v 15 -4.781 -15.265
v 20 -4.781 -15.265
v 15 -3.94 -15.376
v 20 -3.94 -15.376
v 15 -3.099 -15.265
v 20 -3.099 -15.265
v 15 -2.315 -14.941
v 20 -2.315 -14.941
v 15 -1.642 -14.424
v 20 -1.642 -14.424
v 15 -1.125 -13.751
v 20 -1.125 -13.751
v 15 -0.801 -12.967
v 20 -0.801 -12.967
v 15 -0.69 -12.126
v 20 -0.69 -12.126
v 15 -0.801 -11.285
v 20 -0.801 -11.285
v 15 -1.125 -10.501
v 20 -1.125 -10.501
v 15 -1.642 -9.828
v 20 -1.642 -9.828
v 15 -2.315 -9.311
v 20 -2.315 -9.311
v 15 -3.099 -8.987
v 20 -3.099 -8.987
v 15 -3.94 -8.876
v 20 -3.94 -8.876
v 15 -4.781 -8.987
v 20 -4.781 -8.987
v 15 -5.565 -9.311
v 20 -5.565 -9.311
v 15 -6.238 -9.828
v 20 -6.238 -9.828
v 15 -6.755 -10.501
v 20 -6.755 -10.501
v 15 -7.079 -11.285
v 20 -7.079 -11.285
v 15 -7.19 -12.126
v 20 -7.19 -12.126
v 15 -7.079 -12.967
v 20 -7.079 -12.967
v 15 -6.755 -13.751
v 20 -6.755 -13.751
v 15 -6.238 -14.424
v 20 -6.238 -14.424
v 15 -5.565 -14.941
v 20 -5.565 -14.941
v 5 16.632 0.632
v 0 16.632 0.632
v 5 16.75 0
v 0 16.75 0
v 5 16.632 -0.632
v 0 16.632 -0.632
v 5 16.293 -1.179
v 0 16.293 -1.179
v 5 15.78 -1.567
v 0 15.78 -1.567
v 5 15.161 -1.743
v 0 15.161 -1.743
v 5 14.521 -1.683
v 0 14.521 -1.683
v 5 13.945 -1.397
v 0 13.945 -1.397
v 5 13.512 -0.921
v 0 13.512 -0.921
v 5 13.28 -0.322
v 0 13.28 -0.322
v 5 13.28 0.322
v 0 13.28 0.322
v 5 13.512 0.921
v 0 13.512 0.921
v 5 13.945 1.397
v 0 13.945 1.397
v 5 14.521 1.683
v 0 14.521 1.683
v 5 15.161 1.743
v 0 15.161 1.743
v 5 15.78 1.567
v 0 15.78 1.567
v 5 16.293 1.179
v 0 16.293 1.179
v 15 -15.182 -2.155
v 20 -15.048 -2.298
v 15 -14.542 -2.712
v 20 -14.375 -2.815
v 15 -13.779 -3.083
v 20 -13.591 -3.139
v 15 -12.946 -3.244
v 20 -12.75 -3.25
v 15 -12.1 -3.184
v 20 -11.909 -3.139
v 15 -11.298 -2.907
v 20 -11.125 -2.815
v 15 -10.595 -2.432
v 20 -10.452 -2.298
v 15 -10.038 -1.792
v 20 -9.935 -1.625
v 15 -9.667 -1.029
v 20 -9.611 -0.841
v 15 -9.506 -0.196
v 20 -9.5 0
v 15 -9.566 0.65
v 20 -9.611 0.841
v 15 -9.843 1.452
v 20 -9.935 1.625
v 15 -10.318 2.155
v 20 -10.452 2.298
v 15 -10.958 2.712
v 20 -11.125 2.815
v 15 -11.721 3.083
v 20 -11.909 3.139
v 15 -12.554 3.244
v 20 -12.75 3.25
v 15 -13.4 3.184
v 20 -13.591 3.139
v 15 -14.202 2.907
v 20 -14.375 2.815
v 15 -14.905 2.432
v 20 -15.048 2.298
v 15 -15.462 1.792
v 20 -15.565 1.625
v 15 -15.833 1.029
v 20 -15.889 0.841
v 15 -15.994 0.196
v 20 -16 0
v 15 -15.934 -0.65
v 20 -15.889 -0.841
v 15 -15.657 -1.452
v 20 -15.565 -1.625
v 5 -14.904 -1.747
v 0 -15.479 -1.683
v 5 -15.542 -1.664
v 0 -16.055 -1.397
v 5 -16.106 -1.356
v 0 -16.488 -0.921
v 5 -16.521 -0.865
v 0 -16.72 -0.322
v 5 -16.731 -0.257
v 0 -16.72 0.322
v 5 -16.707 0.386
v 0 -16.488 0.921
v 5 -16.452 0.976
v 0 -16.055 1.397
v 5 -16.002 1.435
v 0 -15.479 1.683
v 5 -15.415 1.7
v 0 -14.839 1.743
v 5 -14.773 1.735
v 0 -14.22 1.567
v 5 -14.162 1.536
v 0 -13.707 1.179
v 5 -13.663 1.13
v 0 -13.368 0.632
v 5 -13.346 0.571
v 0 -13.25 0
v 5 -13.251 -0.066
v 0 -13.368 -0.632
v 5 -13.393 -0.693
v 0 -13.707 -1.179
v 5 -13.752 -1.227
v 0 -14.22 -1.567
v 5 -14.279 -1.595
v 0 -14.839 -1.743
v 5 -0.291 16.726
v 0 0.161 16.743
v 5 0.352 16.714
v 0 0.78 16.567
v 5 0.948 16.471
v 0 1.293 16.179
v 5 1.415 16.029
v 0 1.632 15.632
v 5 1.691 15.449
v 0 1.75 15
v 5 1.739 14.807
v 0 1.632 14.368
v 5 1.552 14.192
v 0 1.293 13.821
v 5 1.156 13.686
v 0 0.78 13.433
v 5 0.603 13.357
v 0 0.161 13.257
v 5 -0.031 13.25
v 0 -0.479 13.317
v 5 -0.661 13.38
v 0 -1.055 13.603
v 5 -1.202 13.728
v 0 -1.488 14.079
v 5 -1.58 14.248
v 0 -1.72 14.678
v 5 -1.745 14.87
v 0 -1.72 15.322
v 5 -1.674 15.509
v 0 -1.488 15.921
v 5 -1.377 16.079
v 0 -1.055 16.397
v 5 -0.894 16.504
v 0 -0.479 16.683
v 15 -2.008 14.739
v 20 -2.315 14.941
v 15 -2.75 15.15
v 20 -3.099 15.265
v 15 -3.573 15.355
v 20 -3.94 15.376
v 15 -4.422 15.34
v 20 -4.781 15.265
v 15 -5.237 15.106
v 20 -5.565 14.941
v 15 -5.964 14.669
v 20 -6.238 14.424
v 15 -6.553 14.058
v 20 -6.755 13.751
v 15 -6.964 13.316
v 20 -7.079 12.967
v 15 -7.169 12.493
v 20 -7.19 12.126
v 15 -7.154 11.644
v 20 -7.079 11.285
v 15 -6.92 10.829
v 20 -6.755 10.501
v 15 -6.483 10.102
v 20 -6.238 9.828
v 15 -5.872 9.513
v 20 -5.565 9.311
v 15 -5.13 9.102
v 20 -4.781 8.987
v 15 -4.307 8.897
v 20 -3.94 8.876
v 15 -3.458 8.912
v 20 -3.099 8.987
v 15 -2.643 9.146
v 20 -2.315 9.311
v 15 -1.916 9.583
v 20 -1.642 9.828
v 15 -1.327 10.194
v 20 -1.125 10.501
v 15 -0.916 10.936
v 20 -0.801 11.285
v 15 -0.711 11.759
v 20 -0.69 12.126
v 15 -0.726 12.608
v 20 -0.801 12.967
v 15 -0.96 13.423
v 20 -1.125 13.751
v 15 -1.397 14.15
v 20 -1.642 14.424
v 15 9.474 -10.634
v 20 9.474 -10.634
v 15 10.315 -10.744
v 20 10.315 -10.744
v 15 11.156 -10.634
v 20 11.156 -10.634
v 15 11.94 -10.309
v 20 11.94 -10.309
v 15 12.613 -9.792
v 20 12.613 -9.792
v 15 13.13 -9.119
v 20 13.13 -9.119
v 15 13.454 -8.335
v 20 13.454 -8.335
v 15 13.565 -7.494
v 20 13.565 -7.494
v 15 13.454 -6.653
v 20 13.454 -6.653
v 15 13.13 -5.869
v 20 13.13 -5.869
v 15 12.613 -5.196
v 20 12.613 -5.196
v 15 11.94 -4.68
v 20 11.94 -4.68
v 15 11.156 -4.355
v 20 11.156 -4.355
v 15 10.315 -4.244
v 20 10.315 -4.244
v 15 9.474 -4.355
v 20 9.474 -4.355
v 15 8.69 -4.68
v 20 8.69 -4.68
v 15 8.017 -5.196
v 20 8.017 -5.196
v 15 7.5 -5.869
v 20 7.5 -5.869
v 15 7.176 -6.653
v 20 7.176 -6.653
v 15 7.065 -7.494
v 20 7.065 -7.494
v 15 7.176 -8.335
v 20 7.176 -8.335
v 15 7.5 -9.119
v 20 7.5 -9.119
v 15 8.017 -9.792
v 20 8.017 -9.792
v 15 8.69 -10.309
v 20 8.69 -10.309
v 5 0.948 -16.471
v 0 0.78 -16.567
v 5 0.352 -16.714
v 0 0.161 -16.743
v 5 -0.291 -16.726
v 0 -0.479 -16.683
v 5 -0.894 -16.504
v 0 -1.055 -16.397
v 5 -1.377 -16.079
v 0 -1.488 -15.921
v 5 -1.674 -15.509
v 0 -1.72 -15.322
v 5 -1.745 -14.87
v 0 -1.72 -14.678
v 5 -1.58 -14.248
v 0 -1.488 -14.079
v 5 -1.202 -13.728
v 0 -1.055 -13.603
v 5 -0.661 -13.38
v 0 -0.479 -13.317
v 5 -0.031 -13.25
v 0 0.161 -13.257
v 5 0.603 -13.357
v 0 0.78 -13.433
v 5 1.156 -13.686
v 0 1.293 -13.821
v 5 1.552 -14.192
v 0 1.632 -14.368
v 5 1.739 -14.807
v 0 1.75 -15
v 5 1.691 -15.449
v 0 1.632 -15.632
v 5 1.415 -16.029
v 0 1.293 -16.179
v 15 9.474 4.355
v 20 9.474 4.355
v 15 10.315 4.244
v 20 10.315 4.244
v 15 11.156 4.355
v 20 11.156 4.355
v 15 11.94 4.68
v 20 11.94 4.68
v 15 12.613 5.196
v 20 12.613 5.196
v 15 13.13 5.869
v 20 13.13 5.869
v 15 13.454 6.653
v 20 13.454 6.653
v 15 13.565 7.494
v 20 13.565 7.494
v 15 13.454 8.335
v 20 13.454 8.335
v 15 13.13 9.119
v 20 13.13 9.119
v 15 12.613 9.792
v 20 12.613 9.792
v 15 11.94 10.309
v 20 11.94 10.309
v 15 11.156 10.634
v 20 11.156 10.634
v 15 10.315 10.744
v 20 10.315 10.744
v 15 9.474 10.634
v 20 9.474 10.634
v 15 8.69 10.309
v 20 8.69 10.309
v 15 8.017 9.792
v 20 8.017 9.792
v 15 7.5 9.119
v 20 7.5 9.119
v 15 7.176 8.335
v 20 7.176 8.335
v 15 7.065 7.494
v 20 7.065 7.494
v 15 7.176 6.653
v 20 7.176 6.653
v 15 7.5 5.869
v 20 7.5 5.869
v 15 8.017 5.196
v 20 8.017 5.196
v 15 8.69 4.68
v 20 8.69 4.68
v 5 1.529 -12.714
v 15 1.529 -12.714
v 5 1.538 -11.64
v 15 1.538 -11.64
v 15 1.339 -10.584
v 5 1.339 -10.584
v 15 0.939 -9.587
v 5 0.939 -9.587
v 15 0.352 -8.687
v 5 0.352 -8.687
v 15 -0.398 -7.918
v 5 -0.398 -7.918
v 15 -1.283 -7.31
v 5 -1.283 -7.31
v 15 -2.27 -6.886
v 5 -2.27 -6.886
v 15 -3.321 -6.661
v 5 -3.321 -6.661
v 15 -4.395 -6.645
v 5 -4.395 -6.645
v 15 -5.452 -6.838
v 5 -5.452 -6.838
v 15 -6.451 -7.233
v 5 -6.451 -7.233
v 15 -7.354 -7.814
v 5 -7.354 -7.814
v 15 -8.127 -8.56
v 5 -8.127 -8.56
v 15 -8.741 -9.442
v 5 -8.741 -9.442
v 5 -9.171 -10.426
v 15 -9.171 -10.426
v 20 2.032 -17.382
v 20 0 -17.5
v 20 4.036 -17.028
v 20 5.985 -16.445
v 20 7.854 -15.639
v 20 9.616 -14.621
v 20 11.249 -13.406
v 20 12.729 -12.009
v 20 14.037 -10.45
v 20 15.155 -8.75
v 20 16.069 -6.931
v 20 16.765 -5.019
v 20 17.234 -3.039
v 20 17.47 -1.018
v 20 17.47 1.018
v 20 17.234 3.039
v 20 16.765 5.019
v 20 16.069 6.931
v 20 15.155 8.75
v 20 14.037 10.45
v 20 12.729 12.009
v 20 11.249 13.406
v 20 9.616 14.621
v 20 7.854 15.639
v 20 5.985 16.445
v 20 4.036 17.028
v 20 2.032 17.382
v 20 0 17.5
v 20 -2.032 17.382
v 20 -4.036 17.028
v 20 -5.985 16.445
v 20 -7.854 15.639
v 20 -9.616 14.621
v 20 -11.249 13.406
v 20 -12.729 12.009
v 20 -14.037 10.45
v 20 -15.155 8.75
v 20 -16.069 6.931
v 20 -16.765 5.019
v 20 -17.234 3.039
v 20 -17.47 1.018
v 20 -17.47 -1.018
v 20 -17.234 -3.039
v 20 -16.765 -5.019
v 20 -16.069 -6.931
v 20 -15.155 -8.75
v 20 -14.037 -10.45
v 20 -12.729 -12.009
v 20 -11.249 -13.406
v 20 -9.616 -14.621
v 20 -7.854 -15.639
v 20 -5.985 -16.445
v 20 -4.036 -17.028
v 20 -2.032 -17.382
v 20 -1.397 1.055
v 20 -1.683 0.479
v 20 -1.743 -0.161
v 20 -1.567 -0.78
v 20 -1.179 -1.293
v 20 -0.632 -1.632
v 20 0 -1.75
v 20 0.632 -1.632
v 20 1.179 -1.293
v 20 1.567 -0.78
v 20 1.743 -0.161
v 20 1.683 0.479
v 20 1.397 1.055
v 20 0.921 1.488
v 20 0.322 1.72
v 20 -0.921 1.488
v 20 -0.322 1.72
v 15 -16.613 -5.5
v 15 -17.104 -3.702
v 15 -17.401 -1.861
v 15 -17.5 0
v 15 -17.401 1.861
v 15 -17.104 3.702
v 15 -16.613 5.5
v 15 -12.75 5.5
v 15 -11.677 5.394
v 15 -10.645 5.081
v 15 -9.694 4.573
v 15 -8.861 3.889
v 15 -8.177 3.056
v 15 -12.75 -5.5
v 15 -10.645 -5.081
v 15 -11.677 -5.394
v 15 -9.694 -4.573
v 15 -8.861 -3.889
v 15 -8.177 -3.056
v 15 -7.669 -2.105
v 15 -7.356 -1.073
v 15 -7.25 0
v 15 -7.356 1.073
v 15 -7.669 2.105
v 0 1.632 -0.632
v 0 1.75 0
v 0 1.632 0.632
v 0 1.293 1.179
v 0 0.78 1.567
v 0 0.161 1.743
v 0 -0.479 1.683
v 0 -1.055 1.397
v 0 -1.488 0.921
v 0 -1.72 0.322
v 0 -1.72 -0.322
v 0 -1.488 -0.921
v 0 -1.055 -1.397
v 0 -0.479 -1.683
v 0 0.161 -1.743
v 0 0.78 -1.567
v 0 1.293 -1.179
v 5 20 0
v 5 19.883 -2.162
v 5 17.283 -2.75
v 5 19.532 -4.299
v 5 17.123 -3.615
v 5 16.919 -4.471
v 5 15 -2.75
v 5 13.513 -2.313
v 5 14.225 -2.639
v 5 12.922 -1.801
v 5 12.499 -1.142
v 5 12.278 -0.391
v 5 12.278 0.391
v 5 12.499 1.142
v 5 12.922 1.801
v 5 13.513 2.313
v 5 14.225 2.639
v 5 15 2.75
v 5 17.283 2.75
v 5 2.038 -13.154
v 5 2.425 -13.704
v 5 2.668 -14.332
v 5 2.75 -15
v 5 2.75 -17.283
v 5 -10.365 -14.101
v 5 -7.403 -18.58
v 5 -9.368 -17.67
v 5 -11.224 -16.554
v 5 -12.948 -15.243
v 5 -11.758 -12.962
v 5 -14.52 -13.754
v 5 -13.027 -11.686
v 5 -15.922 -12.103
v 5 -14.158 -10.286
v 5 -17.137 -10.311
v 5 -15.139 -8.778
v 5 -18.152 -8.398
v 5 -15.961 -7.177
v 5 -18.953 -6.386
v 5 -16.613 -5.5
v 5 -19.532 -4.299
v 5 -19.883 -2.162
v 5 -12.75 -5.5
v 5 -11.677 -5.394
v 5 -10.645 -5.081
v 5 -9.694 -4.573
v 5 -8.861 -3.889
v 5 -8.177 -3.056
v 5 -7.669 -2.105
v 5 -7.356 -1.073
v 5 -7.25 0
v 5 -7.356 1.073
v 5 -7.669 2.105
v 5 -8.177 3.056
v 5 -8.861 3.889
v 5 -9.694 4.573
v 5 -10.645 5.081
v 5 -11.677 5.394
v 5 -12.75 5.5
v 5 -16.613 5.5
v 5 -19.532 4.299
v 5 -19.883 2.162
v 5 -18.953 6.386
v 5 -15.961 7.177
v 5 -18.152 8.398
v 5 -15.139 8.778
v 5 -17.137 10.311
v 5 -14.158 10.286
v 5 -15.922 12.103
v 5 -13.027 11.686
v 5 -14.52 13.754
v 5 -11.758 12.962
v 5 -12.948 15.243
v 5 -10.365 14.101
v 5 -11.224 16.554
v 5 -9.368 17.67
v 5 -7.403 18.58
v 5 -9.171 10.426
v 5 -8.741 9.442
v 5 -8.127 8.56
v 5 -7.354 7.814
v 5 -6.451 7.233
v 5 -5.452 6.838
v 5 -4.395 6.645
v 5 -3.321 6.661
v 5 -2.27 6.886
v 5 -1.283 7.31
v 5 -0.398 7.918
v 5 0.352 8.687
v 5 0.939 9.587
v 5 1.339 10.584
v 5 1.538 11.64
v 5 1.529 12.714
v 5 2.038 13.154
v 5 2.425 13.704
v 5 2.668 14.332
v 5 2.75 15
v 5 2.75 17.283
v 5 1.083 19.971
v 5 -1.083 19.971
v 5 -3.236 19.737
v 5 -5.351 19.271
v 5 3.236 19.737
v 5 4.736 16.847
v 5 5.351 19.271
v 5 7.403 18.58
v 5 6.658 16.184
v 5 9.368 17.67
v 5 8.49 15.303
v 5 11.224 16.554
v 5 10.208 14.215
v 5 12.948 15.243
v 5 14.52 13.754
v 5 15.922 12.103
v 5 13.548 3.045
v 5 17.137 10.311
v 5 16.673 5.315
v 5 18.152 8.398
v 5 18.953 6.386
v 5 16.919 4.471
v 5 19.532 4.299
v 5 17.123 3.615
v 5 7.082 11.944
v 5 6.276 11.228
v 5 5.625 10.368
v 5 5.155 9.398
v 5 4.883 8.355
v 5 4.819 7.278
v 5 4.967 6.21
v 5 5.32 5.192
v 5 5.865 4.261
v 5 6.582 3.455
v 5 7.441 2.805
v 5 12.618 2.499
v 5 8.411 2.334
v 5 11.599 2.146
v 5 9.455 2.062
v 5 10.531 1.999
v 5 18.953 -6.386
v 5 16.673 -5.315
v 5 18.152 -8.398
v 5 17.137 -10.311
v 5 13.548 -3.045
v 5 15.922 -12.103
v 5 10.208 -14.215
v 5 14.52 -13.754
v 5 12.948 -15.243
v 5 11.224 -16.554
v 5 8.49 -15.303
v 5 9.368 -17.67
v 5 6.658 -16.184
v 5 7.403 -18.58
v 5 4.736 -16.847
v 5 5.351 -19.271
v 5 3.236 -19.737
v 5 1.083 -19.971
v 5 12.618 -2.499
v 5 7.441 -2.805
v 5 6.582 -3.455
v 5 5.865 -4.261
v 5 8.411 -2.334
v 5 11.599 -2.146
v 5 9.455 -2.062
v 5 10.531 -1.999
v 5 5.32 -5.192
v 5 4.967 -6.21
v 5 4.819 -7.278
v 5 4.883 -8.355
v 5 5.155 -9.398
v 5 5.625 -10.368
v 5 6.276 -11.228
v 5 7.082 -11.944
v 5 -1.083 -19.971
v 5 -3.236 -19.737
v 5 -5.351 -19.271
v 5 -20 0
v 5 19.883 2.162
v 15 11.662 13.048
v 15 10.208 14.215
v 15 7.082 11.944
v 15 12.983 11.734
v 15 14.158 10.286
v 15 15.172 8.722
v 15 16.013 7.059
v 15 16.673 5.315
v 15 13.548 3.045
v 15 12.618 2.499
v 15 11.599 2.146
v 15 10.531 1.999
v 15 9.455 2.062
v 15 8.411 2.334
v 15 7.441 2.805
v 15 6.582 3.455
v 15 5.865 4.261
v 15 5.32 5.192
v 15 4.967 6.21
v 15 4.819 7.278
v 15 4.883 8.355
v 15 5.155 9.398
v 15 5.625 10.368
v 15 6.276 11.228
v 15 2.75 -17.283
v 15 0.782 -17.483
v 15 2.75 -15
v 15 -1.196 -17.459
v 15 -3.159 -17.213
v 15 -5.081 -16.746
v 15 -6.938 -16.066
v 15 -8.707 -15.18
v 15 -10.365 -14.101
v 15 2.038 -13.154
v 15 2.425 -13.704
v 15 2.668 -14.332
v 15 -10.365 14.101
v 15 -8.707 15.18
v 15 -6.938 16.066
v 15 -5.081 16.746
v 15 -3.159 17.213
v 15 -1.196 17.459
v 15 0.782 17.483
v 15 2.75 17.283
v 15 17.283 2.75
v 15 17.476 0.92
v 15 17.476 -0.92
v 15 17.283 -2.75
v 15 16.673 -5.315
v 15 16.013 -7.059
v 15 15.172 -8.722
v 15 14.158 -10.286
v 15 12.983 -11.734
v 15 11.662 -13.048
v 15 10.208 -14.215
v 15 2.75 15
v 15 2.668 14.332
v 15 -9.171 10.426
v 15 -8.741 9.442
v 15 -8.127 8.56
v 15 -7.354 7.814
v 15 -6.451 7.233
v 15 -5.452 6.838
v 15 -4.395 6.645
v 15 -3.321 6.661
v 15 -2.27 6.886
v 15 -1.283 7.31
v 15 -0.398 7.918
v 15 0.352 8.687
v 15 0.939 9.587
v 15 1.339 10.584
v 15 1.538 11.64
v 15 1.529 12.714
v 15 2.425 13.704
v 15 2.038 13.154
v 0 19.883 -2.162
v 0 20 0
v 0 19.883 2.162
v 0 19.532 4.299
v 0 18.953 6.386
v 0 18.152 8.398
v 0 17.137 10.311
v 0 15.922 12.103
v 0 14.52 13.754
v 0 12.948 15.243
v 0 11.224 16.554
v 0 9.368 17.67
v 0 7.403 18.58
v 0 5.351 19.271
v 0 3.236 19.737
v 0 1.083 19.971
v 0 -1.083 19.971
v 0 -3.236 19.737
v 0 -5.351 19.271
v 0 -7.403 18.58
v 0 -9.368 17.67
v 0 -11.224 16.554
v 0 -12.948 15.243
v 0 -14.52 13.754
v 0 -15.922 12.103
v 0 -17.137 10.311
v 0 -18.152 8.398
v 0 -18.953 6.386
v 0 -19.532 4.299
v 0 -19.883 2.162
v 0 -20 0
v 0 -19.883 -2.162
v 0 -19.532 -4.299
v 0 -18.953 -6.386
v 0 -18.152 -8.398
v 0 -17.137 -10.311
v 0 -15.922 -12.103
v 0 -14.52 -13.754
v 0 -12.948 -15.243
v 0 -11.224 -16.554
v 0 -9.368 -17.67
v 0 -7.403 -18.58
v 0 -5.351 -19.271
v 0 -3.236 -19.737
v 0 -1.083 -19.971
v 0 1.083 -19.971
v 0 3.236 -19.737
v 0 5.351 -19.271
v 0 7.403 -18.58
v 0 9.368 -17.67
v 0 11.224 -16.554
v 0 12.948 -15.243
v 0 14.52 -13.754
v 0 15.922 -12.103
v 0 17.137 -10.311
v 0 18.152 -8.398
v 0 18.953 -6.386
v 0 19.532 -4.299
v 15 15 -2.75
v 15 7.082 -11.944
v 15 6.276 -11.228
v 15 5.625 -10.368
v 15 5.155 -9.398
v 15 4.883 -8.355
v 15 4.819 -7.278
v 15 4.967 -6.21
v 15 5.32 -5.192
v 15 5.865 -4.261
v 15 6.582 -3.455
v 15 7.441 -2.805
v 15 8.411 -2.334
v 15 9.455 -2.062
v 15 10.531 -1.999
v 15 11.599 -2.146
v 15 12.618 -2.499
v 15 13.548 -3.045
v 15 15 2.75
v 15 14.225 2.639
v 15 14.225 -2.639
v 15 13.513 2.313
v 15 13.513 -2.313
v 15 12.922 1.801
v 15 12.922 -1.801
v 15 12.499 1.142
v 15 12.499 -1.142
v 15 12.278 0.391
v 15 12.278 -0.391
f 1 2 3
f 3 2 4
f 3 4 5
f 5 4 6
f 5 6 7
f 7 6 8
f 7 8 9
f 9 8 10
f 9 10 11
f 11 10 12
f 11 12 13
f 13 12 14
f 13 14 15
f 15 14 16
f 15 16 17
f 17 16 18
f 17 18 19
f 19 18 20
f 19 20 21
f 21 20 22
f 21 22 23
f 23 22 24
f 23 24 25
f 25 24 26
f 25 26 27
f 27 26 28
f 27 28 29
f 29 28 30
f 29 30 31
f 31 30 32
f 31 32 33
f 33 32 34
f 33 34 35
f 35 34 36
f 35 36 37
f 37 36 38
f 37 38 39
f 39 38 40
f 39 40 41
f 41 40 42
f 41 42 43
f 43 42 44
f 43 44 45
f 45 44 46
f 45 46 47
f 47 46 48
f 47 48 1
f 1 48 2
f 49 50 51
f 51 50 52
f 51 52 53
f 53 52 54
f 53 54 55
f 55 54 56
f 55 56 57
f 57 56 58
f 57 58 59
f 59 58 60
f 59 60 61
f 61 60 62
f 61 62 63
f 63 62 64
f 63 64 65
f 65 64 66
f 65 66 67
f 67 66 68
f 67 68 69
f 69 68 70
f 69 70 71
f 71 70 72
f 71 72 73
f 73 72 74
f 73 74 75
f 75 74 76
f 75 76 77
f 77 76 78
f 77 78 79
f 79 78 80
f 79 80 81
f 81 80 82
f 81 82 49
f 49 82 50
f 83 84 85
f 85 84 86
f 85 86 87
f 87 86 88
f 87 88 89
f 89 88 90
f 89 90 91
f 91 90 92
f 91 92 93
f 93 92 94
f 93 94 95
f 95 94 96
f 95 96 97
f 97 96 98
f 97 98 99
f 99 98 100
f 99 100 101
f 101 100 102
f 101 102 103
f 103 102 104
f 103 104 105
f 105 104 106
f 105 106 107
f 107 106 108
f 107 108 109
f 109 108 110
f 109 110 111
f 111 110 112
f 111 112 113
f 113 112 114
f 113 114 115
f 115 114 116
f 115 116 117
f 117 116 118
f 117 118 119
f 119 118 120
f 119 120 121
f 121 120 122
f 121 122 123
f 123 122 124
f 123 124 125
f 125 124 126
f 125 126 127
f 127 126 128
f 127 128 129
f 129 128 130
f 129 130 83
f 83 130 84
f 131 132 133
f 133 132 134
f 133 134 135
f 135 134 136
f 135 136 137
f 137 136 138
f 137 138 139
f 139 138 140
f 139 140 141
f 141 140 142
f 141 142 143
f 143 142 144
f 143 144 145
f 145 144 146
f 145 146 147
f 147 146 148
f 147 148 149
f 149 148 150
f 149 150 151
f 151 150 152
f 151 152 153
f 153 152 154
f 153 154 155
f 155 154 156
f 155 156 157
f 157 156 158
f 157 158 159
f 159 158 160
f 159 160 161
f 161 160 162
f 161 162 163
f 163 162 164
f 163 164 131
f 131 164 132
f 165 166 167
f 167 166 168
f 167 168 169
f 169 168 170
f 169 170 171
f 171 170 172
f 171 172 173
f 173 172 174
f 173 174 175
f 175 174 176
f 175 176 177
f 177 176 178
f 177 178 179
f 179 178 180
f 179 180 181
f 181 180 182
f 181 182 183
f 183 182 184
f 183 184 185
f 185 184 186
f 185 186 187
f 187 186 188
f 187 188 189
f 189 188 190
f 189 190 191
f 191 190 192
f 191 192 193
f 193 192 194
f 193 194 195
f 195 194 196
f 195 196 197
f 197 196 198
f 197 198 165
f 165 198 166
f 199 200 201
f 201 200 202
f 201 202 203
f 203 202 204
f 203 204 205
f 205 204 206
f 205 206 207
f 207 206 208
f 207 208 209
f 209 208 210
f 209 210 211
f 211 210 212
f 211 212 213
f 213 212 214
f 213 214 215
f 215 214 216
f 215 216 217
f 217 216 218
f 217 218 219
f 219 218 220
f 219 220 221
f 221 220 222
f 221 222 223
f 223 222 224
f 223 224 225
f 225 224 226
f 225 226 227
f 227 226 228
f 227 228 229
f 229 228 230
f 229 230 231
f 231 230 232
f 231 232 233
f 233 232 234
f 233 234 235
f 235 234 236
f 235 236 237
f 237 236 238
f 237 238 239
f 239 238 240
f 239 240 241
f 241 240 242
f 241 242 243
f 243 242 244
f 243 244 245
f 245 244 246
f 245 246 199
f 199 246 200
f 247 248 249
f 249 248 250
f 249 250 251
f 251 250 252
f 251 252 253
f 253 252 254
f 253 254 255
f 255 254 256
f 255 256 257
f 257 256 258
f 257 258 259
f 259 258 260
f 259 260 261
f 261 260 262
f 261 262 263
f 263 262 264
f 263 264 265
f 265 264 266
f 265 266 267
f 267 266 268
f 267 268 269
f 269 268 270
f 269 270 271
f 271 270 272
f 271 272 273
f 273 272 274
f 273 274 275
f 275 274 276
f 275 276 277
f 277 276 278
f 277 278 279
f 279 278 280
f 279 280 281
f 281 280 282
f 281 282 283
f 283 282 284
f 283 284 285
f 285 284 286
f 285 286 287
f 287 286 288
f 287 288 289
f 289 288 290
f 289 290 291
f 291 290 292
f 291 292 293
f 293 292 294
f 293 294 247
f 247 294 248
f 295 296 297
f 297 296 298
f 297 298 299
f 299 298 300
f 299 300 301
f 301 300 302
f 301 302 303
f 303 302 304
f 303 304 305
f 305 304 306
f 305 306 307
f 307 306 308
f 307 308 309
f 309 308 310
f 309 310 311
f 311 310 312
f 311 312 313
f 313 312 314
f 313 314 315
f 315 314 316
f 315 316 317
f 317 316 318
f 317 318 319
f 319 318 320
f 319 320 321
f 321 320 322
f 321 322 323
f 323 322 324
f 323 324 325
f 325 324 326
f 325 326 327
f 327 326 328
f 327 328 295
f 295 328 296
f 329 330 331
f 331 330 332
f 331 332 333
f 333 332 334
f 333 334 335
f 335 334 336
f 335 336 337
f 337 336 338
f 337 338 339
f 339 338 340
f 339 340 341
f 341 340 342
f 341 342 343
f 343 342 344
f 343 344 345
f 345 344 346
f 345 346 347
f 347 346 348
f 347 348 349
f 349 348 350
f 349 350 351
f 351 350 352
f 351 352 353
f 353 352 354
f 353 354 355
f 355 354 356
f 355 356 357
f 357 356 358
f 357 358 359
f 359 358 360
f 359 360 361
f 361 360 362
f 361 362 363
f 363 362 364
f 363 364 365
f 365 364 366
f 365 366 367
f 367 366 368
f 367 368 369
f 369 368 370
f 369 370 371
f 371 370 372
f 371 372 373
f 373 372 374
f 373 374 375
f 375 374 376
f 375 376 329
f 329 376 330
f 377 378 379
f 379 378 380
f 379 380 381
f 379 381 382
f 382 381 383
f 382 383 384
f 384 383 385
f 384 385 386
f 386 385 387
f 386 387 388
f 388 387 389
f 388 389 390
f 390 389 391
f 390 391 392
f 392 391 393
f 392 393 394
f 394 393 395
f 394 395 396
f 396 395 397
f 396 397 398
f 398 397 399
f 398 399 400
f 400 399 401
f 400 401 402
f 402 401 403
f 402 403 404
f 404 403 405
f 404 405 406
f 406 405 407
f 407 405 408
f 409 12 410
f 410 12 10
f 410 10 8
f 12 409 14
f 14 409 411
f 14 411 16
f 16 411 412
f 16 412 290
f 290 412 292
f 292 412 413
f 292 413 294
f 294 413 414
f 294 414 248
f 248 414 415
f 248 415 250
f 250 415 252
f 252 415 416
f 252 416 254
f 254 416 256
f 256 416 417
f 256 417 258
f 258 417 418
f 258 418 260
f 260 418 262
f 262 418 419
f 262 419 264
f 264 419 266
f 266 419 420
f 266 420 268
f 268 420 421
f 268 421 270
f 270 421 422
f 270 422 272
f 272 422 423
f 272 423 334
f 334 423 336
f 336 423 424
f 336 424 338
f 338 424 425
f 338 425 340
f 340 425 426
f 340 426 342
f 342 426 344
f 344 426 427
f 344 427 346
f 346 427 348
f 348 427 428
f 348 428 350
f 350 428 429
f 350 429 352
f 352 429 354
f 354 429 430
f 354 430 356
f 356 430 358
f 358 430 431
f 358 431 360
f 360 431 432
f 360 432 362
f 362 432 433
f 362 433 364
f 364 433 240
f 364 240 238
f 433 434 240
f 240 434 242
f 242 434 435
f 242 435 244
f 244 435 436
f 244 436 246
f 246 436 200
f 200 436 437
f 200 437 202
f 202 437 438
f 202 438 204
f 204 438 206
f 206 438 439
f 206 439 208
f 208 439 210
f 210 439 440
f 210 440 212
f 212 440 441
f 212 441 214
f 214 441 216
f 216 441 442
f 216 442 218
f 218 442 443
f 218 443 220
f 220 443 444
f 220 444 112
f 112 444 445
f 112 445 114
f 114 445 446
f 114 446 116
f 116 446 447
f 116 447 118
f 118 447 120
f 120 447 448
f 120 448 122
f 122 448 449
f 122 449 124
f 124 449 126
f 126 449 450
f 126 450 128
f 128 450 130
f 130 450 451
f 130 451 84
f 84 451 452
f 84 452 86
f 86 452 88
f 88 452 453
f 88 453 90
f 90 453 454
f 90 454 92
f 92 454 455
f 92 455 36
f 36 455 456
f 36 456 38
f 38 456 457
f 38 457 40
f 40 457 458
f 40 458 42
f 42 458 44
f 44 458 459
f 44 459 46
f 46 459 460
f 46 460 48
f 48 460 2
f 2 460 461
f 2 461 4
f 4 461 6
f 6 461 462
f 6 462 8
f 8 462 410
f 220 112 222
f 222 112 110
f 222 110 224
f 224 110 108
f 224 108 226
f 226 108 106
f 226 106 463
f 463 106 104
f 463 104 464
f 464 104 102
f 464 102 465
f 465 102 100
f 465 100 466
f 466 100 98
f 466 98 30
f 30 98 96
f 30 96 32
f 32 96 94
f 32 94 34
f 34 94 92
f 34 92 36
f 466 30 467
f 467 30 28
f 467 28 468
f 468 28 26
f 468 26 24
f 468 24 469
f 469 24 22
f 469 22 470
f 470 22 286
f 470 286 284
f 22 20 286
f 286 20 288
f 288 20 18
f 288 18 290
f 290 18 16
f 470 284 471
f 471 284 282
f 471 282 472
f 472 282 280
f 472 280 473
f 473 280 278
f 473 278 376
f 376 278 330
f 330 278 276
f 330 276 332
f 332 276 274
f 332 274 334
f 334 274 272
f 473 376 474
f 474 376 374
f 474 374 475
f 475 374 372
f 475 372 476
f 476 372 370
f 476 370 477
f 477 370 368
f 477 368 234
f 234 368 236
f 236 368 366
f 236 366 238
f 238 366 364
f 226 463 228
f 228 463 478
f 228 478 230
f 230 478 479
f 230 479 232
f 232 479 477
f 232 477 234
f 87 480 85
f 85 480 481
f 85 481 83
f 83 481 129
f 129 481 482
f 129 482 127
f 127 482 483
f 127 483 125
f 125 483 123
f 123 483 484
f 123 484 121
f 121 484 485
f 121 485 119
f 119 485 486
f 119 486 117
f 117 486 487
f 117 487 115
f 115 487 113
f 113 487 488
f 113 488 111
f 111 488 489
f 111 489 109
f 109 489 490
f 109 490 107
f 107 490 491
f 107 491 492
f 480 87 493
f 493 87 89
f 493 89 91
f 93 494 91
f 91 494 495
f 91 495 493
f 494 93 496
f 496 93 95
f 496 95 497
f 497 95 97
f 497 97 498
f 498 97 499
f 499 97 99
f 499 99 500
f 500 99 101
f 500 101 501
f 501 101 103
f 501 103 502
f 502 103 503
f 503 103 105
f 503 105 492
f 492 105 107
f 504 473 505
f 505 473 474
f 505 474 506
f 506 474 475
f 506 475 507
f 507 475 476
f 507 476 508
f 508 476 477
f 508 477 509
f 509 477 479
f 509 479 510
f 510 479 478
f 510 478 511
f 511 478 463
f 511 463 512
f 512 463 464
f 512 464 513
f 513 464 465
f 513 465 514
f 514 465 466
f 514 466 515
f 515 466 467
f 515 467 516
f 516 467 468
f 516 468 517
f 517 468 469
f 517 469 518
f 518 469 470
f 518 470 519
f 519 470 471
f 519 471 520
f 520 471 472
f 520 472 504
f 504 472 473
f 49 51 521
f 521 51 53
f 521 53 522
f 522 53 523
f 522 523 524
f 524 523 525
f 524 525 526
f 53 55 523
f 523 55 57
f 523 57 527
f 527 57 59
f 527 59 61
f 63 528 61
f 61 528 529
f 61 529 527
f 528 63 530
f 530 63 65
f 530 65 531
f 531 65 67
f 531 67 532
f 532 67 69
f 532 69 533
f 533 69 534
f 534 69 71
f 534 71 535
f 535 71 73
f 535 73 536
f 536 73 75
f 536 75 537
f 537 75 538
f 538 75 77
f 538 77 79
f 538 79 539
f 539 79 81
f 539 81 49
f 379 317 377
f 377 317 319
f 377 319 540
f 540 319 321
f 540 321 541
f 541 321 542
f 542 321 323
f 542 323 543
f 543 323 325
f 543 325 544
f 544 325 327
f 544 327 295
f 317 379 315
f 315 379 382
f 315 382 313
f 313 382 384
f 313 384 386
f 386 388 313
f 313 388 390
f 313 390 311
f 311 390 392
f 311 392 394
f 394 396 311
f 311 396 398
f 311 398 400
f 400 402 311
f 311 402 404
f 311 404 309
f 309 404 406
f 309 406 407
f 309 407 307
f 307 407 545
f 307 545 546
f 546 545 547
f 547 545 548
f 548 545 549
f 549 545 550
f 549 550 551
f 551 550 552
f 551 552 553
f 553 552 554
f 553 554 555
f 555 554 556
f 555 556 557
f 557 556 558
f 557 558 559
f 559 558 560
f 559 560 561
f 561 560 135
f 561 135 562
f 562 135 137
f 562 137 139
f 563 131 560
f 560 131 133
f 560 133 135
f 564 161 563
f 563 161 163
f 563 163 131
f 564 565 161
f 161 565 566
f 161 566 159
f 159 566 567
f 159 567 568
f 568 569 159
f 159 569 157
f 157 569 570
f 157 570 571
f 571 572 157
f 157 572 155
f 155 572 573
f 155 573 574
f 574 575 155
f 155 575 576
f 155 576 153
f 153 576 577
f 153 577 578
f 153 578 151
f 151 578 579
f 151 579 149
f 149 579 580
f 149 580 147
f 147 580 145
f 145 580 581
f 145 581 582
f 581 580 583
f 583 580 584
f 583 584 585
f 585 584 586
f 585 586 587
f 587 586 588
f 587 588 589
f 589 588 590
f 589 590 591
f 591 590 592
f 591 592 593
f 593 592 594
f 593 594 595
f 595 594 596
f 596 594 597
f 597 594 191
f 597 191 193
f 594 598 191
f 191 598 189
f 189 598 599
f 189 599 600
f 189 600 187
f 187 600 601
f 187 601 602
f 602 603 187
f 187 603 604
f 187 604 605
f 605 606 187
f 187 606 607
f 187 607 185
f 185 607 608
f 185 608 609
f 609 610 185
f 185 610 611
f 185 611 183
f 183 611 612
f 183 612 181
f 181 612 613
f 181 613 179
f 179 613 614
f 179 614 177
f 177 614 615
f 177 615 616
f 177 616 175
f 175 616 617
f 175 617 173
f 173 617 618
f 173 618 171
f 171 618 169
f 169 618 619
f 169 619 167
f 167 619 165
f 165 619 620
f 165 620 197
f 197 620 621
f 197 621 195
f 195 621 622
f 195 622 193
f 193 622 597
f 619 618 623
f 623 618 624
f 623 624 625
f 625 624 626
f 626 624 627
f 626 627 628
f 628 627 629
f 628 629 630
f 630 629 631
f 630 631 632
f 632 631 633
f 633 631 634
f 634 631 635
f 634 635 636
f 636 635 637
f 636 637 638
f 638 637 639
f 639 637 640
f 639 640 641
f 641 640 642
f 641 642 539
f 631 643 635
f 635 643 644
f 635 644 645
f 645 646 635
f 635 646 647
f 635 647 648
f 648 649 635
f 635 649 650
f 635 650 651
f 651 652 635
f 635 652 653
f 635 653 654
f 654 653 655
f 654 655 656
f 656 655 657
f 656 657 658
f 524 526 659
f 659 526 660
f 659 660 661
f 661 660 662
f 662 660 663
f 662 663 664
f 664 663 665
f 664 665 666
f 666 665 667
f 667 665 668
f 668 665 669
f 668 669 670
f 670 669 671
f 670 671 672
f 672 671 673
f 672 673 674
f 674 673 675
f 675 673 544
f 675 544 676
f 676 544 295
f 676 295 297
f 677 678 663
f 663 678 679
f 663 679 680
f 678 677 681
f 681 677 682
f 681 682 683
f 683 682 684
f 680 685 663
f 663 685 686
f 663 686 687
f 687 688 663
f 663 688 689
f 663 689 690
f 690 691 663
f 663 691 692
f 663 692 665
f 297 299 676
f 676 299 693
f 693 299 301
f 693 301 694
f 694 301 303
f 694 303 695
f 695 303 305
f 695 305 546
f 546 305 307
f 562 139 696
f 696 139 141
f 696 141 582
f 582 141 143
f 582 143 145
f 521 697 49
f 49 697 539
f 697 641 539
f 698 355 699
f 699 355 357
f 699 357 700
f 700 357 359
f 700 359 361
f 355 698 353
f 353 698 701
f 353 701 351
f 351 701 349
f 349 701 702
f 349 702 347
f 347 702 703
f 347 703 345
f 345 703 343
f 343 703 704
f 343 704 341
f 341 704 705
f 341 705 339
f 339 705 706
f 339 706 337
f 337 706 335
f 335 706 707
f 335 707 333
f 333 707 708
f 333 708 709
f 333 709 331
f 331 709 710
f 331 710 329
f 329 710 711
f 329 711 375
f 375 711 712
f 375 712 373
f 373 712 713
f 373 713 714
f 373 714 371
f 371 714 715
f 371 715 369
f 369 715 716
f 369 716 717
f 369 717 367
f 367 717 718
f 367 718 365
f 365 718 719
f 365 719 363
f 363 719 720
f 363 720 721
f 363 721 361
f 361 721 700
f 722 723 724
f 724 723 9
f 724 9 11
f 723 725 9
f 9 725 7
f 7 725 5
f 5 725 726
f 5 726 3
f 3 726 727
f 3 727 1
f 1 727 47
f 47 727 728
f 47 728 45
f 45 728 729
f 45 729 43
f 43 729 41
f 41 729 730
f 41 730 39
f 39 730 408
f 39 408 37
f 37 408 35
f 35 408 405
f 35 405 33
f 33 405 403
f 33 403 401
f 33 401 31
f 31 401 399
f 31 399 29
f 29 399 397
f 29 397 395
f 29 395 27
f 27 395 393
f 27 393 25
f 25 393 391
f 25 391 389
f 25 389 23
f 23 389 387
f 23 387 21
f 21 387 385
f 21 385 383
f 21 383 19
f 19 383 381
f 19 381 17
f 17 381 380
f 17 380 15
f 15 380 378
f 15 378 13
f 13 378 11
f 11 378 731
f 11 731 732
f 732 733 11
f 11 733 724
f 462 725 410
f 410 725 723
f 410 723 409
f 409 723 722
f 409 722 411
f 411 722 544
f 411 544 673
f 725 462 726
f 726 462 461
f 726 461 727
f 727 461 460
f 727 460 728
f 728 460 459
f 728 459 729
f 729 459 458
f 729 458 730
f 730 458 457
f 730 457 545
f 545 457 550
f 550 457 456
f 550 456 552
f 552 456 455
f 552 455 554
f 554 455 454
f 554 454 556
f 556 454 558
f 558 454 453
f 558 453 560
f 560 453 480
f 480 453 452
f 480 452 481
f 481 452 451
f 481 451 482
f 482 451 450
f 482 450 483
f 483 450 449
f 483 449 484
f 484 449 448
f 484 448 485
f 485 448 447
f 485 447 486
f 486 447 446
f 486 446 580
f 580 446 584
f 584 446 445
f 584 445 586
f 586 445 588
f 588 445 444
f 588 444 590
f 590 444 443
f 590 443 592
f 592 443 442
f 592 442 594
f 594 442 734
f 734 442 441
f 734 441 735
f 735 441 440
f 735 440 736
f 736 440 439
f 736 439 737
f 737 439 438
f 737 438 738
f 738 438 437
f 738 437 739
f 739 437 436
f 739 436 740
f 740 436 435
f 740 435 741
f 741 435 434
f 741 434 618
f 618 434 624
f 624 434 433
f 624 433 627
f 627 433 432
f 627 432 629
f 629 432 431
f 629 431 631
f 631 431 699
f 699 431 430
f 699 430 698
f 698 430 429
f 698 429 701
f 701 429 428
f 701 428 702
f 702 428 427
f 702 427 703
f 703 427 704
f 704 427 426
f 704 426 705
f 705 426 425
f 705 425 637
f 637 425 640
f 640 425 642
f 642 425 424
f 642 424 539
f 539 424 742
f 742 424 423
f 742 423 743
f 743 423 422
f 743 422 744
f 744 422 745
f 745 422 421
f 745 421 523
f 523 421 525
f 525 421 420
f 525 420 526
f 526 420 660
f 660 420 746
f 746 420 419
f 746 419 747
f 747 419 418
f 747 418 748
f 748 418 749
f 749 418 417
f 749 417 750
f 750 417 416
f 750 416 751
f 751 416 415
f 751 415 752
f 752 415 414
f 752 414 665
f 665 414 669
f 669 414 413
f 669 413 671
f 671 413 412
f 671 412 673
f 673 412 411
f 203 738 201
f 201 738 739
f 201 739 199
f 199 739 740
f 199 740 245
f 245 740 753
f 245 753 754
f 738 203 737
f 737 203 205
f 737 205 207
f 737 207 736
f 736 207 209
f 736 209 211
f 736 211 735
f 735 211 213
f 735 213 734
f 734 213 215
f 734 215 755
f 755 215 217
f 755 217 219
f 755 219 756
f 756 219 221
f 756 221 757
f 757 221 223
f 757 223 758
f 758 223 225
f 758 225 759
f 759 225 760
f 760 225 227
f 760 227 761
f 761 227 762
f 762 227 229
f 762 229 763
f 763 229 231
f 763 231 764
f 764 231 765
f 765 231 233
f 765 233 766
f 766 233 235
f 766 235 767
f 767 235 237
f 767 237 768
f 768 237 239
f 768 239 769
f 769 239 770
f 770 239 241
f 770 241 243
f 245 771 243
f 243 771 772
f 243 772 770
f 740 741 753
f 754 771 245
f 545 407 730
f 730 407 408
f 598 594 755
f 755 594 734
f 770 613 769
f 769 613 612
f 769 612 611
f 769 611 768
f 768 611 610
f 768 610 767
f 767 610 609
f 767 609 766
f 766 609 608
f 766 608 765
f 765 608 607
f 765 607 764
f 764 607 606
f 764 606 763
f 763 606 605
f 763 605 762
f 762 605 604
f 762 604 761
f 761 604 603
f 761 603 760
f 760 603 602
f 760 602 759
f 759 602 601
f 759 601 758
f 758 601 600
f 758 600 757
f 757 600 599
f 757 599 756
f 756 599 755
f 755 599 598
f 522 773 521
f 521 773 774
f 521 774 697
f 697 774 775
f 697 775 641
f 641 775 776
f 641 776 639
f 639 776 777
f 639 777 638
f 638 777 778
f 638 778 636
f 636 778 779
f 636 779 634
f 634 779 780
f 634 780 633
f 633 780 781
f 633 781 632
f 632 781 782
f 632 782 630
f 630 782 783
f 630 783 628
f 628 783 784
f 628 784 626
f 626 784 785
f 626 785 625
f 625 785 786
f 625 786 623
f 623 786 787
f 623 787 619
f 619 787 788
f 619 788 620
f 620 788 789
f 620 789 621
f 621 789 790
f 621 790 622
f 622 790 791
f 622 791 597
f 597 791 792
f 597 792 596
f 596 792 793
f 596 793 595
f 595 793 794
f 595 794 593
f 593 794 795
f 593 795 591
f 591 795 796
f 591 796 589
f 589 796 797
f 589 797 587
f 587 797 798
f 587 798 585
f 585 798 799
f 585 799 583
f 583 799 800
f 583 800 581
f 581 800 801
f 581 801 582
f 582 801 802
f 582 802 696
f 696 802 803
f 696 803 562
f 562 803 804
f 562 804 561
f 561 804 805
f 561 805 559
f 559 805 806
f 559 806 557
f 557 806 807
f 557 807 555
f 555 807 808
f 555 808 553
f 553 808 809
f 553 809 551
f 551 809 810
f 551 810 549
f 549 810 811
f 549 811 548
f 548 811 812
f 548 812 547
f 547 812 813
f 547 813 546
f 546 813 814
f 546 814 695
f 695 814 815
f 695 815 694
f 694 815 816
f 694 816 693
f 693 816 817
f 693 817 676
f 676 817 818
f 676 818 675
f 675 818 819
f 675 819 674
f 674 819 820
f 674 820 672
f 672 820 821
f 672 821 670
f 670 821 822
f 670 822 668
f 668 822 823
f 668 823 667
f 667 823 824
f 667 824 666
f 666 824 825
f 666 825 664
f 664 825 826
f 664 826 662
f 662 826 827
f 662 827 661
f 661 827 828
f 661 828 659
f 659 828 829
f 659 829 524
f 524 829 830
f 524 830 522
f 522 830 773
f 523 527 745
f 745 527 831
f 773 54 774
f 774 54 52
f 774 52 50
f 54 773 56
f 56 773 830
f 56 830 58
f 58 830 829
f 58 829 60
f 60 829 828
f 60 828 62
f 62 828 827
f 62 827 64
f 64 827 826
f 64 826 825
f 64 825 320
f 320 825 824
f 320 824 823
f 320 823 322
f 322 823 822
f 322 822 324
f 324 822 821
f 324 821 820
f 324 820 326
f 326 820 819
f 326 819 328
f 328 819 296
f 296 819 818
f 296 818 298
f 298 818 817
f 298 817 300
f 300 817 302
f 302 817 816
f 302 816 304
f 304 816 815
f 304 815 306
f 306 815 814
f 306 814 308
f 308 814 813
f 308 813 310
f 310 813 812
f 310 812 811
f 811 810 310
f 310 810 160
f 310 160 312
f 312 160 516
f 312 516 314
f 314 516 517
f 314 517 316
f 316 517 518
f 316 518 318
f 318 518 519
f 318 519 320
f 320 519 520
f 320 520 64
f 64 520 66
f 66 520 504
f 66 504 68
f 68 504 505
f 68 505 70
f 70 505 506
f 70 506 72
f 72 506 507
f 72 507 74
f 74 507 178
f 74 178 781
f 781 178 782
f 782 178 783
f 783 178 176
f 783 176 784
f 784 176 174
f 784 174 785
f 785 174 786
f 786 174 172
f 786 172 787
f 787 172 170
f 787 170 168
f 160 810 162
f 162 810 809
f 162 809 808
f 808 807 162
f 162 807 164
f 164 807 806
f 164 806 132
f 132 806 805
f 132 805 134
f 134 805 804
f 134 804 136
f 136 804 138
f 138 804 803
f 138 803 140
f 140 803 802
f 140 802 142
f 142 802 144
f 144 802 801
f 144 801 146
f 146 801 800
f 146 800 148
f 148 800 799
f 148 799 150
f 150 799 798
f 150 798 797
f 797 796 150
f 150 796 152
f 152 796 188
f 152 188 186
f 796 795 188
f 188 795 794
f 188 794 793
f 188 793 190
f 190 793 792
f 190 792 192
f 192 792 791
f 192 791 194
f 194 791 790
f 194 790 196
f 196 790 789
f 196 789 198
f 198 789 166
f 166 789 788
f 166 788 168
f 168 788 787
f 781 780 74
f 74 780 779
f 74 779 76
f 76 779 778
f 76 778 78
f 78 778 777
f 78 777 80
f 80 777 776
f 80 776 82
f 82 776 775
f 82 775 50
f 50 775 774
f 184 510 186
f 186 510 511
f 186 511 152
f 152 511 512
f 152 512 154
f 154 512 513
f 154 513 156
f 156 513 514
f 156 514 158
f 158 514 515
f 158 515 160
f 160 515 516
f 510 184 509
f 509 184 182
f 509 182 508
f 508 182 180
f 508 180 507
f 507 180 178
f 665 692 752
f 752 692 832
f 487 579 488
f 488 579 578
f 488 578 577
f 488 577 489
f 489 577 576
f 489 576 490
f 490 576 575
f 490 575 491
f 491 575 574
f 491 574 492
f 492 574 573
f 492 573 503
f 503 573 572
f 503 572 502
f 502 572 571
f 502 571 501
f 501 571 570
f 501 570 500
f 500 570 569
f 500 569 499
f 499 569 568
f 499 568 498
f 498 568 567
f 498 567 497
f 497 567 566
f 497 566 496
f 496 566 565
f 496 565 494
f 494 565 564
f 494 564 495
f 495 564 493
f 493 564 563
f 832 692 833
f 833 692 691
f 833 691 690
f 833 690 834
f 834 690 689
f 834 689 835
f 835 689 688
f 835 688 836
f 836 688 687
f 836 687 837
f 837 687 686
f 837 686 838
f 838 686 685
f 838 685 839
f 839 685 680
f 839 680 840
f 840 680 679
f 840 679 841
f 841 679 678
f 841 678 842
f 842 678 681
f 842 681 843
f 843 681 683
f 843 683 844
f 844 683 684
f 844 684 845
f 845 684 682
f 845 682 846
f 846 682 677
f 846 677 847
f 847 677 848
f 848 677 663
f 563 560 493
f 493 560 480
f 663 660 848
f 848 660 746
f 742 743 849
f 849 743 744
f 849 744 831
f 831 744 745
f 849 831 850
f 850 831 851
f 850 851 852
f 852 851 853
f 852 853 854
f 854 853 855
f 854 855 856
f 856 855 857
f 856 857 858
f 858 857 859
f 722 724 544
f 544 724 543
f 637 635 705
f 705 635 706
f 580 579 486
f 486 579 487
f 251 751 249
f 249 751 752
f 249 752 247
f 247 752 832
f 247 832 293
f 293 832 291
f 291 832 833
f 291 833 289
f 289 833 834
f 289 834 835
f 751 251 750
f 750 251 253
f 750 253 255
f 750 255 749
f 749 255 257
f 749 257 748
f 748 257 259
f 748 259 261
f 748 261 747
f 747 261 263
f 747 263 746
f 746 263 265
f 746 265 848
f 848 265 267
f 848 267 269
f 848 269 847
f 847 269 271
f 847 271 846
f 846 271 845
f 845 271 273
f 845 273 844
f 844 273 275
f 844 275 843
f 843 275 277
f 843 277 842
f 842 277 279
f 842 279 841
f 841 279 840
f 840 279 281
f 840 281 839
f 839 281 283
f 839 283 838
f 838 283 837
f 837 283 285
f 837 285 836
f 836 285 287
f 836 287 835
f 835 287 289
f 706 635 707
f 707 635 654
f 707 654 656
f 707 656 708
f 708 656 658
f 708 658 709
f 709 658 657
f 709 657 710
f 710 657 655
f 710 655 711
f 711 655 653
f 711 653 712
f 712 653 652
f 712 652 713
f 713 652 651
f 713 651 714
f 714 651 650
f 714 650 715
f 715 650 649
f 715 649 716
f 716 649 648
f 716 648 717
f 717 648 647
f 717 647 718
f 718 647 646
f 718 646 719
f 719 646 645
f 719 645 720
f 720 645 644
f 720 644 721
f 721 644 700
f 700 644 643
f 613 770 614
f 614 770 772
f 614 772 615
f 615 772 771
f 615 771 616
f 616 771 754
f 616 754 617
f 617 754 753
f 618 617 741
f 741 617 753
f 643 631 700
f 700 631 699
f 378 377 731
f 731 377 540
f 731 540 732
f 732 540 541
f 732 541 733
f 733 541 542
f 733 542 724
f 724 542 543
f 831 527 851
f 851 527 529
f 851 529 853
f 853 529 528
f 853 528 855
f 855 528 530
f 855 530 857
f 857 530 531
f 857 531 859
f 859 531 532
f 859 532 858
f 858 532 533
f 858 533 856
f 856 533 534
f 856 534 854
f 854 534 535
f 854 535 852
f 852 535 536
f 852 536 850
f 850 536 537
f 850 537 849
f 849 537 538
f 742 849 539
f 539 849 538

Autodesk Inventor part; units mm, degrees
ref_plane "YZ Plane" through (0, 0, 0) normal (1, 0, 0) x (0, 1, 0)
ref_plane "XZ Plane" through (0, 0, 0) normal (0, 1, 0) x (-1, 0, 0)
ref_plane "XY Plane" through (0, 0, 0) normal (0, 0, 1) x (1, 0, 0)
sketch "Sketch1" plane through (0, 0, 0) normal (1, 0, 0) x (0, 1, 0)
  circle A0 centre (0, 0) radius 15
  circle A1 centre (15, 0) radius 1.75
  circle A2 centre (0, 15) radius 1.75
  circle A3 centre (-15, 0) radius 1.75
  circle A4 centre (0, -15) radius 1.75
  circle A5 centre (0, 0) radius 1.75
  circle A6 centre (0, 0) radius 20
  dimension "d0" = 30
  dimension "d1" = 3.5
  dimension "d4" = 360
  dimension "d6" = 3.5
  dimension "d7" = 40
extrude "Extrusion1" add sketch "Sketch1" along normal blind 5 contours A1 A0 A4 A3 A2 | A6
sketch "Sketch2" plane through (5, 0, 0) normal (1, 0, 0) x (0, 0, -1)
  circle A0 centre (0, 0) radius 1.75
  circle A1 centre (0, 0) radius 12.75
  circle A2 centre (0, -12.75) radius 3.25
  circle A3 centre (12.126, -3.94) radius 3.25
  circle A4 centre (7.4943, 10.315) radius 3.25
  circle A5 centre (-7.4943, 10.315) radius 3.25
  circle A6 centre (-12.126, -3.94) radius 3.25
  circle A7 centre (0, 0) radius 1.75 projected
  circle A8 centre (0, 0) radius 17.5
  dimension "d10" = 25.5
  dimension "d11" = 6.5
  dimension "d14" = 360
  dimension "d16" = 35
extrude "Extrusion2" add sketch "Sketch2" along normal blind 15 contours A1 A3 A2 A6 A5 A4 | A8
sketch "Sketch3" plane through (5, 0, 0) normal (1, 0, 0) x (0, 0, -1)
  circle A0 centre (0, -12.75) radius 5.5
  line L0 (0, -12.75) -> (5.5, -12.75)
  line L1 (0, -12.75) -> (-5.5, -12.75)
  circle A1 centre (0, 0) radius 17.5 projected
  line L2 (-5.5, -16.6132) -> (-5.5, -12.75)
  line L3 (5.5, -16.6132) -> (5.5, -12.75)
  circle A2 centre (0, 0) radius 1.75 projected
  circle A3 centre (0, 0) radius 17.5
  line L4 (12.126, -3.94) -> (13.8256, 1.2908)
  line L5 (12.126, -3.94) -> (10.4264, -9.1708)
  circle A4 centre (12.126, -3.94) radius 5.5
  line L6 (17.4997, 0.097) -> (13.8256, 1.2908)
  line L7 (14.1005, -10.3646) -> (10.4264, -9.1708)
  line L8 (7.4943, 10.315) -> (3.0447, 13.5478)
  line L9 (7.4943, 10.315) -> (11.9439, 7.0821)
  circle A5 centre (7.4943, 10.315) radius 5.5
  line L10 (5.3154, 16.6732) -> (3.0447, 13.5478)
  line L11 (14.2146, 10.2076) -> (11.9439, 7.0821)
  line L12 (-7.4943, 10.315) -> (-11.9439, 7.0821)
  line L13 (-7.4943, 10.315) -> (-3.0447, 13.5478)
  circle A6 centre (-7.4943, 10.315) radius 5.5
  line L14 (-14.2146, 10.2076) -> (-11.9439, 7.0821)
  line L15 (-5.3154, 16.6732) -> (-3.0447, 13.5478)
  line L16 (-12.126, -3.94) -> (-10.4264, -9.1708)
  line L17 (-12.126, -3.94) -> (-13.8256, 1.2908)
  circle A7 centre (-12.126, -3.94) radius 5.5
  line L18 (-14.1005, -10.3646) -> (-10.4264, -9.1708)
  line L19 (-17.4997, 0.097) -> (-13.8256, 1.2908)
  point P0 (-12.126, -3.94)
  point P1 (15.3573, -8.3906)
  point P2 (17.3562, -2.2387)
  point P3 (-7.4925, 15.815)
  point P4 (-12.7256, 12.0128)
  point P5 (-17.3562, -2.2387)
  point P6 (-15.3573, -8.3906)
  dimension "d19" = 11
  dimension "d22" = 360
extrude "Extrusion3" cut sketch "Sketch3" along normal blind 10 contours L0 L1 A0 | L3 A1 A0 | A0 A1 L1 L0 | A0 A1 L2 | L7 A4 A1 | A1 A7 L18 | A4 L5 L4 A1 | A1 A4 | A4 L4 L5 | A7 A1 | A1 A7 L17 L16 | L16 L17 A7 | A4 L6 A1 | A1 L19 A7 | L11 A5 A1 | A1 A6 L14 | A5 L9 L8 A1 | A5 L8 L9 | A6 A1 | A1 A6 L13 L12 | L12 L13 A6 | A5 L10 A1 | A1 L15 A6
sketch "Sketch4" plane through (5, 0, 0) normal (1, 0, 0) x (0, 0, -1)
  circle A0 centre (0, -15) radius 1.75 projected
  circle A1 centre (0, -15) radius 2.75
  circle A2 centre (15, 0) radius 2.75
  circle A3 centre (0, 15) radius 2.75
  circle A4 centre (-15, 0) radius 2.75
  circle A5 centre (0, 0) radius 1.75 projected
  circle A6 centre (0, 0) radius 17.75
  line L0 (-2.75, -15) -> (-2.75, -17.5357)
  line L1 (2.75, -15) -> (2.75, -17.5357)
  line L2 (15, -2.75) -> (17.5357, -2.75)
  line L3 (15, 2.75) -> (17.5357, 2.75)
  line L4 (2.75, 15) -> (2.75, 17.5357)
  line L5 (-2.75, 15) -> (-2.75, 17.5357)
  line L6 (-15, 2.75) -> (-17.5357, 2.75)
  line L7 (-15, -2.75) -> (-17.5357, -2.75)
  point P0 (2.75, 15)
  dimension "d31" = 35.5
  dimension "d26" = 5.5
  dimension "d29" = 360
  dimension "d34" = 360
extrude "Extrusion4" cut sketch "Sketch4" along normal blind 10 contours A0 | A1 | L1 A6 A1 | A1 A6 L0 | L2 A2 A6 | A6 A4 L7 | A2 | A2 L3 A6 | A6 L6 A4 | A4 | L4 A3 A6 | A6 A3 L5 | A3 | A5
equation "\"BendRadius\" = Thickness"
equation "\"BendReliefWidth\" = Thickness"
equation "\"BendReliefDepth\" = 0.5 * Thickness"
equation "\"CornerReliefSize\" = 4 * Thickness"
equation "\"MinimumRemnant\" = 2 * Thickness"
equation "\"TransitionRadius\" = BendRadius"
equation "\"JacobiRadiusSize\" = BendRadius"
equation "\"GapSize\" = Thickness"
equation "\"Thickness\" = 0.5"
properties part number "EaglePowerCycDriveAdaptor"
